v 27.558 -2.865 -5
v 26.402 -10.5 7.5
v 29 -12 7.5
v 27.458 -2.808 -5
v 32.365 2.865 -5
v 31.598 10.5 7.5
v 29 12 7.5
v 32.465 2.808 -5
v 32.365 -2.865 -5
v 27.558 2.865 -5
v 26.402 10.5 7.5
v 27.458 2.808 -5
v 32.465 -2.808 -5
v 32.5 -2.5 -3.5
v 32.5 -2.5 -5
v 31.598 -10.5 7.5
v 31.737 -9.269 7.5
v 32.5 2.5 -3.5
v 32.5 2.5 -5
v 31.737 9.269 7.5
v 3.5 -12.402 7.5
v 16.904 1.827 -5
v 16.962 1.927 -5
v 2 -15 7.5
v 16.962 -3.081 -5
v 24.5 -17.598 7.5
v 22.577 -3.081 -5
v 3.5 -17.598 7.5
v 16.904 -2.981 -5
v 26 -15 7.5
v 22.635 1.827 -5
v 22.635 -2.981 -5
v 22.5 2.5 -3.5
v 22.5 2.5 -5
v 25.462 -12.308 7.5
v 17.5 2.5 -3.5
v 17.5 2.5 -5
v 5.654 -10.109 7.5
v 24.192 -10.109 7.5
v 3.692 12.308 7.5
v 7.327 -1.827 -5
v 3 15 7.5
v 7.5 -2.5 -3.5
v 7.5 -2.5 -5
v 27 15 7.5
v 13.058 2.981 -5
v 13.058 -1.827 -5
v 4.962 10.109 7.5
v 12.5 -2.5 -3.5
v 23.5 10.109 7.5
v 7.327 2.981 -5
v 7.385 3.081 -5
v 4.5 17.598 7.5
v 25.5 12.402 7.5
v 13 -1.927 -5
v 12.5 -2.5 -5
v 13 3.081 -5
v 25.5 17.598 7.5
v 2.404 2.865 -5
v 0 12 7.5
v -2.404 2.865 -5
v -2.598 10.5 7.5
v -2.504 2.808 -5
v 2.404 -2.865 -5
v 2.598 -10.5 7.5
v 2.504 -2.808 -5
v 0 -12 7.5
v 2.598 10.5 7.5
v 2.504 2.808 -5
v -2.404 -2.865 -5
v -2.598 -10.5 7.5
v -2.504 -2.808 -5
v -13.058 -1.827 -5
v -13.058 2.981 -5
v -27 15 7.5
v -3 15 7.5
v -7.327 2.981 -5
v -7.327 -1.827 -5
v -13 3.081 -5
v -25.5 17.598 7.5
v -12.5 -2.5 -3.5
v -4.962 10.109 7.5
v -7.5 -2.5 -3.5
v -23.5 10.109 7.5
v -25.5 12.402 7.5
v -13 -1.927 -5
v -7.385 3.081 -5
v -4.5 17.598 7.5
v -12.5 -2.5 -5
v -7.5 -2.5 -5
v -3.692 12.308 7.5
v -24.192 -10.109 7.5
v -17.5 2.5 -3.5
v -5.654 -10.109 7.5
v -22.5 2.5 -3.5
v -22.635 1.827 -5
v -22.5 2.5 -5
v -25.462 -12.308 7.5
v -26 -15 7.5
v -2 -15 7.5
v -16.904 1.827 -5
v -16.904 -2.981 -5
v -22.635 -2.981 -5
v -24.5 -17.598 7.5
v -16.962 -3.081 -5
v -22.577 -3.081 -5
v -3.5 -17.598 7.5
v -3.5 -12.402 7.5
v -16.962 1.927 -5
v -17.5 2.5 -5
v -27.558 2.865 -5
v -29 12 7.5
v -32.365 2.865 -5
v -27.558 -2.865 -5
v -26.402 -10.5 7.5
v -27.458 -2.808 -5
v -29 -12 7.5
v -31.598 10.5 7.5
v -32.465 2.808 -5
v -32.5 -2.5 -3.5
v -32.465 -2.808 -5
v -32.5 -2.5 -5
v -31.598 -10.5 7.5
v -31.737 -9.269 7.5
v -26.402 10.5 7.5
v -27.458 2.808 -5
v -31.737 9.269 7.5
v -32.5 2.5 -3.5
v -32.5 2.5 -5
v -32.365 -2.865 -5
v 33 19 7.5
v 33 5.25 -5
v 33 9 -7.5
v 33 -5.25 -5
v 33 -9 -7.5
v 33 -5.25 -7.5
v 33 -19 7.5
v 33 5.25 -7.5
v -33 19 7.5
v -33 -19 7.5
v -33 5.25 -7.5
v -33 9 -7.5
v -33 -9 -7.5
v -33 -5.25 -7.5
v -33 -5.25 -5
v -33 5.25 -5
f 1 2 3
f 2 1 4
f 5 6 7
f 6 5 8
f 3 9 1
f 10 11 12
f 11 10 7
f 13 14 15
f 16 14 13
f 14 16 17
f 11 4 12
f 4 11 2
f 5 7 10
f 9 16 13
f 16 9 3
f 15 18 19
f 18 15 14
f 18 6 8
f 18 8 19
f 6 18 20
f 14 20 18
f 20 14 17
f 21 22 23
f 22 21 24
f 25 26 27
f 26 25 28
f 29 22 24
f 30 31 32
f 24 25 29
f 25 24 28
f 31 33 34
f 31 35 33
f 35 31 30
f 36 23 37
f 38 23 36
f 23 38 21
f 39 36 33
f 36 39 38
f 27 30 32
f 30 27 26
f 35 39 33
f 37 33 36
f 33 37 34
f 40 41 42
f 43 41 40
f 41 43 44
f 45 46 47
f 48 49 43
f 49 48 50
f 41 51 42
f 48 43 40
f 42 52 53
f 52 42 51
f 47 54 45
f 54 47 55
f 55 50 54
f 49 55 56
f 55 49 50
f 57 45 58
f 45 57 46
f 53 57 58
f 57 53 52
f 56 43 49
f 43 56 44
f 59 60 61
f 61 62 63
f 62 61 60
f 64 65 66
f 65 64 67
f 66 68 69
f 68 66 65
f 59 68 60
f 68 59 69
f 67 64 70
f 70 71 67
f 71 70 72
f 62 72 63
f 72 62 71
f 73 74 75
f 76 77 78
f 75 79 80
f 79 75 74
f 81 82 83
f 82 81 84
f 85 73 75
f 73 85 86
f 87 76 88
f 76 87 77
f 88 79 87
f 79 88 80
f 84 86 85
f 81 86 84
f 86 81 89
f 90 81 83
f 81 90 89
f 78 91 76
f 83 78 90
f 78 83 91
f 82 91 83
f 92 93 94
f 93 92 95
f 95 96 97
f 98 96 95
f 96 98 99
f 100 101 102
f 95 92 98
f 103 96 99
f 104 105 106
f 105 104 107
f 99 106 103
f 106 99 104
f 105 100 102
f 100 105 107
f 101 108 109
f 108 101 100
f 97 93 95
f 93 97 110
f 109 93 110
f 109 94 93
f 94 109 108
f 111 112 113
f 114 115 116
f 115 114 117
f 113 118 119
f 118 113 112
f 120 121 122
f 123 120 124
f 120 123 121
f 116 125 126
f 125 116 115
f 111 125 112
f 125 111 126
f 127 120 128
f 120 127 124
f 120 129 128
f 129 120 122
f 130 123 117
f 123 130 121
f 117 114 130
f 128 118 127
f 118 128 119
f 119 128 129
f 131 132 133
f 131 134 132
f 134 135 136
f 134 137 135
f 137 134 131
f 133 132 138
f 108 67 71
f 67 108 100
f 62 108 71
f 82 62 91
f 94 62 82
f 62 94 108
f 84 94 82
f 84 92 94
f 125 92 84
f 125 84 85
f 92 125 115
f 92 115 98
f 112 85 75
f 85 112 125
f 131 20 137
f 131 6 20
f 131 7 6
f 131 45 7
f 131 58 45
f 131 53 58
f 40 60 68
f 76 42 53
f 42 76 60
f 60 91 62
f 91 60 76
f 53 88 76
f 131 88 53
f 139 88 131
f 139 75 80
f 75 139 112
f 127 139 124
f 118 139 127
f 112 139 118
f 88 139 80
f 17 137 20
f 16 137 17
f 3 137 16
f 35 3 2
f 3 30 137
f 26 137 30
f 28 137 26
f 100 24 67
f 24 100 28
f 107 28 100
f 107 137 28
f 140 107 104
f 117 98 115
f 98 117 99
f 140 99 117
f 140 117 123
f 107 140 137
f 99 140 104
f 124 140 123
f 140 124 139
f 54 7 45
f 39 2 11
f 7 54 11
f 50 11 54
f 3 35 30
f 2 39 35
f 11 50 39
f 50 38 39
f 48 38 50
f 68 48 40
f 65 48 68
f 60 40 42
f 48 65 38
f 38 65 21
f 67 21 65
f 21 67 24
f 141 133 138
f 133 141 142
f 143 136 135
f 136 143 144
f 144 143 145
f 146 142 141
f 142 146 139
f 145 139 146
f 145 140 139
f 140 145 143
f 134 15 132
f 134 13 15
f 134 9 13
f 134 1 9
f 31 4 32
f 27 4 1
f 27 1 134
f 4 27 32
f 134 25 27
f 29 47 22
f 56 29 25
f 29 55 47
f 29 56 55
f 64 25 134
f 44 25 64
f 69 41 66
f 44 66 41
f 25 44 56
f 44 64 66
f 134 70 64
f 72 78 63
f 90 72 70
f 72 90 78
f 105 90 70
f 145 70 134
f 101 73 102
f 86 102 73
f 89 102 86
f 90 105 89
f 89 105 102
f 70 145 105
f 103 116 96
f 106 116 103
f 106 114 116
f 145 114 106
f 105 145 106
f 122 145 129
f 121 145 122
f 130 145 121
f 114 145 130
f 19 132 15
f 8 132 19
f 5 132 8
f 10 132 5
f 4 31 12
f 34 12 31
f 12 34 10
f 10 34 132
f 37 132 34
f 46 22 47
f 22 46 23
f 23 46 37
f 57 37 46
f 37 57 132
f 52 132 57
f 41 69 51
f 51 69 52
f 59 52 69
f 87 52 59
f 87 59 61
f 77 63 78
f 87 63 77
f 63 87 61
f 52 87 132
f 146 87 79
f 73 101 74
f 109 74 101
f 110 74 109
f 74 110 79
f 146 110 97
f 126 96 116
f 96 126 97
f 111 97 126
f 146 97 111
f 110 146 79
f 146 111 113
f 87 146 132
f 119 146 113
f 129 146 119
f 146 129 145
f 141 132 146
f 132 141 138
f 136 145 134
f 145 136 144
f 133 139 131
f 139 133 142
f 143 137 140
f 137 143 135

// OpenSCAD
// WS2812 LED Strip Parameters - verified measurements
led_spacing = 10;      // 10mm between LED centers
strip_width = 10;      // 10mm wide LED strip
strip_height = 2;      // Keep same
tolerance = 0.5;       // Keep same
led_size = 5;         // 5mm square LED cutouts

// Updated Base Parameters
base_width = 66;      // Optimized smaller base
base_length = 38;     // Adjusted proportionally
base_height = 15;     // Increased by 25% from 25mm
base_space = 4;
// Updated 7-Segment Display Parameters
segment_h_length = 24;    // Increased horizontal length for wider number
segment_width = 6;        // Keep wider segments

// Add diffuser parameters
diffuser_height = .28;

// Define LED positions globally
led1 = [0, -3.0 * led_spacing];  // LED1
led2 = [0,-2.0 * led_spacing];  // LED2
led3 = [0,-1.0 * led_spacing];  // LED3
led4 = [0,0.0 * led_spacing];   // LED4 - Center LED
led5 = [0,1.0 * led_spacing];   // LED5
led6 = [0,2.0 * led_spacing];   // LED6
led7 = [0,3.0 * led_spacing];   // LED7

// Define segment positions globally - Wide and squished
seg_f = [-15, 14];     // F (top left vertical) - moved outward
seg_e = [-15, -14];    // E (bottom left vertical) - moved outward
seg_a = [0, 29];      // A (top horizontal) - same height
seg_g = [0, 0];       // G (middle horizontal) - unchanged
seg_b = [15, 15];      // B (top right vertical) - moved closer
seg_c = [15, -15];     // C (bottom right vertical) - moved closer
seg_d = [0, -29];     // D (bottom horizontal) - moved closer

// LED Strip Channel with wire channels - centered
module led_channel() {
    // Main channel exactly 10mm wide plus tolerance
    translate([-base_width/2 , -strip_width/2 - tolerance/2, -base_height/2])
        cube([base_width, strip_width + tolerance, strip_height + tolerance]);
}

// Single light pipe cavity with elongating shape
module light_cavity(led_pos, segment_pos, is_horizontal=false) {
    // Calculate heights for better progression
    z_bottom = -base_height/2 + strip_height;
    z_top = base_height/2;
    total_height = z_top - z_bottom;
    
    hull() {
        // Bottom (at LED) - small square
        translate([led_pos[0] - led_size/2, led_pos[1] - led_size/2, z_bottom])
            cube([led_size, led_size, 2]);
     
            
        // Top (at segment) - full segment shape
        translate([segment_pos[0], segment_pos[1], z_top ]) {
            rotate([0, 0, is_horizontal ? 0 : 90])
                linear_extrude(height=2)
                    segment(segment_h_length, segment_width);
        }
    }
    
}

// All light cavities with corrected segment positions and mirroring
module all_cavities(visualization=false) {
    
    rotate([0, 0, 90]) {
        // Light paths
        light_cavity(led1, seg_d, true);   // LED1 → F (vertical)
        light_cavity(led2, seg_e, false);   // LED2 → E (vertical)
        light_cavity(led3, seg_c, false);    // LED3 → A (horizontal)
        light_cavity(led4, seg_g, true);    // LED4 → G (horizontal)
        light_cavity(led5, seg_b, false);   // LED5 → B (vertical)
        light_cavity(led6, seg_f, false);   // LED6 → C (vertical)
        light_cavity(led7, seg_a, true);    // LED6 → D (horizontal)
    }
}

// Base with LED channel, cavities, 
module base() {
    difference() {
        // Main block
        cube([base_width, base_length, base_height], center=true);             
        // LED channel
        led_channel();
        // Light pipe cavities
        all_cavities(false);  // Use same paths for actual cavities
    }
}

module segment(length, width) {
    // Elongated hexagonal shape
    hull() {
        translate([-length/2 + width/2, 0, 0]) 
            circle(d=width, $fn=6);
        translate([length/2 - width/2, 0, 0])  
            circle(d=width, $fn=6);
    }
}

// Diffuser layer module
module diffuser_layer() {
    translate([0, 0, (base_height/2) - diffuser_height/2])  // Changed to sit directly on base
        cube([base_width, base_length, diffuser_height], center=true);
}

// // Render just the paths in red with slight transparency
// //all_cavities(true);  // Show paths
// union() {
//    base();
// //    diffuser_layer();
// }
   
module side_cut(side = "left") {
    color("Green", alpha=0.9);
    if (side == "left") {
    rotate([90, 0, 90])
    translate([0, 0, -base_width/2])
        linear_extrude(height=base_width)
            polygon(
            points=[
                [(strip_width/2)+base_space,0 - base_height/2],
                [0+base_length/2,0 - base_height/2],
                [0+base_length/2, base_height/2]
                ], 
            paths=[[0,1,2]]
        );
    } else if (side == "right") {
        rotate([90, 0, 90])
        translate([0, 0, -base_width/2])
            linear_extrude(height=base_width)
                polygon(
                points=[
                    [(-strip_width/2)-base_space,0 - base_height/2],
                    [0-base_length/2,0 - base_height/2],
                    [0-base_length/2, base_height/2]
                    ], 
                paths=[[0,1,2]]
            );
    }
}


// New module for the intersection shape
module intersection_layer() {
        color("Red", alpha=0.9)  // Semi-transparent to visualize

        intersection() {
            all_cavities(true);
            diffuser_layer();
        };
    } 

// union(){
// Replace the final union() with:
// color("Green", alpha=0.9) {
// side_cut("left");
// side_cut("right");
// }
 color("Yellow", alpha=0.9) {
    difference() {
        base();
        side_cut("left");
        side_cut("right");
    }
 }

// intersection_layer();
